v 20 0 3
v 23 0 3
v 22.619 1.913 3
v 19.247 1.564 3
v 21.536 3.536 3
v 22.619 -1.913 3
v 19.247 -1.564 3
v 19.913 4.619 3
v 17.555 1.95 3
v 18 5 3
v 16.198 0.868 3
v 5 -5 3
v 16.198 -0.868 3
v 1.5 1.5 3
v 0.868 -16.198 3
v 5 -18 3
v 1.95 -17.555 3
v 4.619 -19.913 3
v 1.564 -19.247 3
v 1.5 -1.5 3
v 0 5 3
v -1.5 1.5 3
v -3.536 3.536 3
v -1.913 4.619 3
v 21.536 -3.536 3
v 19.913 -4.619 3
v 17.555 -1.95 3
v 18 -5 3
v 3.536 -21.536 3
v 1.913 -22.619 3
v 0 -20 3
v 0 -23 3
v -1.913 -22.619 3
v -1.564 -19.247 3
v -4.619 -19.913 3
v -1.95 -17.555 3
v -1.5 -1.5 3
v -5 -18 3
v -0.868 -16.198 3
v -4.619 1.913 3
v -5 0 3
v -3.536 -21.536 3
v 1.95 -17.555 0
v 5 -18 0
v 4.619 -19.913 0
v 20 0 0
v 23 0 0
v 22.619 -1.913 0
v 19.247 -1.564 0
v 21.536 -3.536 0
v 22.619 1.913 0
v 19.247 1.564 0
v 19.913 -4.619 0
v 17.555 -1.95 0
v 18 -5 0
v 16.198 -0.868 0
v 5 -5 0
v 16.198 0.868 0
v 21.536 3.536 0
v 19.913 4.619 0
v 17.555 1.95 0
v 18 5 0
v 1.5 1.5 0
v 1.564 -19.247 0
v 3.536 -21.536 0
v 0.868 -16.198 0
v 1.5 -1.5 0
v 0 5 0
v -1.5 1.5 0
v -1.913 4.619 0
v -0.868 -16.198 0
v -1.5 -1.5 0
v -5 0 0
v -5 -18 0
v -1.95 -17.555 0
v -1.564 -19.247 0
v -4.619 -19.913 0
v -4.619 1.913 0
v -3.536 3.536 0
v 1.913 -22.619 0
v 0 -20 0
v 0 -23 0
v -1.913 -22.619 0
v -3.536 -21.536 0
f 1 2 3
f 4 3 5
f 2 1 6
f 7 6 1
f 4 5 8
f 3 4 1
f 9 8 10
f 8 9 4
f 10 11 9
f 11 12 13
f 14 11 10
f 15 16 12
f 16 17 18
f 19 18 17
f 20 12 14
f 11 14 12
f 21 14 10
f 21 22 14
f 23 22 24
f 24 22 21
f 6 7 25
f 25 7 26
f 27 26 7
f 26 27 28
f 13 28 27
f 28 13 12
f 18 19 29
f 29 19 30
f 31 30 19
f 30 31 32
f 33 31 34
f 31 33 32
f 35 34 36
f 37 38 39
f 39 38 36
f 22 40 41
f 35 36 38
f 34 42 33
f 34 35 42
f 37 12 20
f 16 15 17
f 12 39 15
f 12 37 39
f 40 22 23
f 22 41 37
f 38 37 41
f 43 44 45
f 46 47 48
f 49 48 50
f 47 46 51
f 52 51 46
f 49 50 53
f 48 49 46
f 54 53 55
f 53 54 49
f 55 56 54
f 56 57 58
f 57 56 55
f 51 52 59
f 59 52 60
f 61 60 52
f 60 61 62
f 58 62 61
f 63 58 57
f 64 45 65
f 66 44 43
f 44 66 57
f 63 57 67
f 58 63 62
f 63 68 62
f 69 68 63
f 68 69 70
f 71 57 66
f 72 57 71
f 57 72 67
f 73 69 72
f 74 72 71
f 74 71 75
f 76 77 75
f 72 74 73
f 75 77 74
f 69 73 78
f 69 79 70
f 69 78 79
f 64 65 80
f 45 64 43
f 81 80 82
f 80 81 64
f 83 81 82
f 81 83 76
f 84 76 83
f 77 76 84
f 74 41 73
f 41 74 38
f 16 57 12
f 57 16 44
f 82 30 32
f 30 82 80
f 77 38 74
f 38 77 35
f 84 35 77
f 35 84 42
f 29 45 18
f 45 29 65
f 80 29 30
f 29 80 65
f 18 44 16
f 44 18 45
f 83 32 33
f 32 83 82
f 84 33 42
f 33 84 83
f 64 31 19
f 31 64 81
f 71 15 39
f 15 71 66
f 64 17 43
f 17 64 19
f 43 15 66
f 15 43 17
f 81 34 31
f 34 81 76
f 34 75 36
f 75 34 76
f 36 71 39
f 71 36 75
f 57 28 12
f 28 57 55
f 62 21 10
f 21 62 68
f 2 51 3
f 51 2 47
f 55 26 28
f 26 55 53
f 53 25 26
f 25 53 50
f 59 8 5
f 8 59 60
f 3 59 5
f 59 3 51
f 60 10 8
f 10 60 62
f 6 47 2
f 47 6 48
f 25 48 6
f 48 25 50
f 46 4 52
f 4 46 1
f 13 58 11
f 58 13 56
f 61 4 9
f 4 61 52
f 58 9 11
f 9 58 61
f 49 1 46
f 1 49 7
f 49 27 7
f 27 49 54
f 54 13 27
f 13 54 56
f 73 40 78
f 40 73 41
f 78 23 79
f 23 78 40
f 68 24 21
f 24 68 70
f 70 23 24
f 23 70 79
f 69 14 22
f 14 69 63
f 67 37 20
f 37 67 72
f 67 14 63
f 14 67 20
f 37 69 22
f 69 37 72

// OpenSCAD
// file: ModuleKatzenklappe.scad
// //////////////////////////////////
// Module für Katzenklappenverschluss
// //////////////////////////////////

module armHorn (laenge, breite, dicke) {
    difference() {
    union() {
    translate ([0,-breite/2,0])
    cube([laenge,breite,dicke], false);
    translate ([laenge,0,0])
    cylinder(dicke,r=breite/2, false); 
    }
    translate ([laenge*1.0,0,0])
    loch(radius=2,tiefe= dicke + 1);
/*    translate ([laenge*0.6,0,dicke-1])
    letter("Achim");
    translate ([laenge*0.6,0,1])
    rotate([0,180,0])
    letter("Tim");
    translate ([laenge*0.2,0,0])
    loch(radius=2,tiefe= dicke + 1);
*/    }
};

module mittelRad (breite) {
    difference() {
        cylinder(breite,r=12.5, false);
        cylinder(breite,r=2.0, false);
        
/*        translate([0,0,breite])
        gear (
            toothNo = 100, 
            toothWidth = 1, 
            toothHeight  = 2, 
            thickness = breite,
            holeRadius = 5,
            holeSides = 6
        );
        translate ([-25,0,0])
        loch(radius=5,tiefe=breite + 1);
        translate ([25,0,0])
        loch(radius=5,tiefe=breite + 1);
        translate ([0,-25,0])
        loch(radius=5,tiefe=breite + 1);
        translate ([0,25,0])
        loch(radius=5,tiefe=breite + 1);
*/        } 
};

module loch (radius, tiefe) {
        cylinder(tiefe,r=radius, false);   
};

module zapfen (breite,tiefe) {
        cube([breite,breite,tiefe], true);   
};

module wand (breite) {
    difference() {
        cube([breite,120,5], false);  
        translate ([5,5,0])
        cube([breite/3-10,110,5], false);  
        translate ([breite/3+5,5,0])
        cube([breite/3-10,110,5], false);  
        translate ([2*breite/3+5,5,0])
        cube([breite/3-10,110,5], false);  
    } 
};

module lArm(laenge, breite, dicke) {
    difference() {
        union() {
            armHorn(laenge=laenge, breite=breite, dicke=dicke);
            rotate(90) armHorn(laenge=laenge, breite=breite, dicke=dicke);
            cylinder(dicke,r=breite/2, false); 
           }
            translate ([0,0,0])
            zapfen(breite= 3, tiefe = dicke * 2);
        }
};

module mittelAchse(laenge, radius_achse, zapfen_breite, zapfen_laenge, breite) {
    difference() {
        union() {
            translate ([0,0,zapfen_laenge /2])
            zapfen(breite= zapfen_breite, tiefe=zapfen_laenge);   
            translate ([0,0,zapfen_laenge])
            cylinder(laenge,r = radius_achse, false, $fn=6);
            translate ([0,0,laenge+(1.5*zapfen_laenge)])
            zapfen(breite= zapfen_breite, tiefe=zapfen_laenge);   
        }
        cylinder (laenge+6,r=0.9, false);
    }
};

module achse(laenge, radius_achse) {
    difference() {
        cylinder(laenge,r = radius_achse, false, $fn=6);
        cylinder (laenge+6,r=0.9, false);
    }
};


module tooth(width, thickness, height){
  scale([width/5,thickness/5,height/10]){
    difference(){
      translate([-2.5,0,0])
      cube([5,5,10]);
      translate([5+1.25-2.5,0-1,0])
      rotate([0,-14.0362434,0])
        cube([5,5+2,12]);
      translate([0-1.25-2.5,0+5+1,0])
      rotate([0,-14.0362434,180])
        cube([5,5+2,12]);
    }
  }
}
module gear(toothNo, toothWidth, toothHeight, thickness,holeRadius,holeSides){
  radius = (toothWidth*1.7*toothNo)/3.141592653589793238/2;
  rotate([-90,0,0])
  difference(){
    union(){
      for(i=[0:toothNo]){
        rotate([0,(360/toothNo)*i,0])
        translate([0,0,radius-0.5])
          tooth(toothWidth,thickness,toothHeight);
      }
      translate([0,thickness,0])
      rotate([90,0,0])
        cylinder(r=radius, h=thickness);
    }
  translate([0,thickness+1,0])
  rotate([90,0,0])
    cylinder(r=holeRadius,h=thickness+2,$fn=holeSides);
  }
}

font = "Liberation Sans";


letter_size = 5;
letter_height = 3;


module letter(l) {
  // Use linear_extrude() to make the letters 3D objects as they
  // are only 2D shapes when only using text()
  linear_extrude(height = letter_height) {
    text(l, size = letter_size, font = font, halign = "center", valign = "center", $fn = 16);
  }
}


module 9g_motor(){
	difference(){			
		union(){
			color("SteelBlue") cube([23,12.5,22], center=true);
			color("SteelBlue") translate([0,0,5]) cube([32,12,2], center=true);
			color("SteelBlue") translate([5.5,0,2.75]) cylinder(r=6, h=25.75, $fn=20, center=true);
			color("SteelBlue") translate([-.5,0,2.75]) cylinder(r=1, h=25.75, $fn=20, center=true);
			color("SteelBlue") translate([-1,0,2.75]) cube([5,5.6,24.5], center=true);		
			color("white") translate([5.5,0,3.65]) cylinder(r=2.35, h=29.25, $fn=20, center=true);				
		}
		translate([10,0,-11]) rotate([0,-30,0]) cube([8,13,4], center=true);
		for ( hole = [14,-14] ){
			translate([hole,0,5]) cylinder(r=2.2, h=4, $fn=20, center=true);
		}	
	}
}

module sg90() {
	color("blue") difference() {
		union() {
			translate([0,0,22.5/2]) cube([22.5,12.2,22.5], center=true);
			translate([0,0,16.75]) cube([32.2,12.2,2], center=true);

			translate([0,0,22.5-1]) {
				hull() {
					translate([-1,0,0]) cylinder(d=5.5, h=4+1);
					translate([1,0,0]) cylinder(d=5.5, h=4+1);
				}

				translate([5.5,0,0]) cylinder(d=11.6, h=4+1);
			}

		}	

		translate([-32.5/2+2,0,16.75-2]) {
			cylinder(d=2, h=2+2);
			translate([-2,0,2]) cube([4,1,2+2], center=true);
		}
		translate([32.5/2-2,0,16.75-2]) {
			cylinder(d=2, h=2+2);
			translate([2,0,2]) cube([4,1,2+2], center=true);
		}
	}
	color("white") translate([5.5,0,22.5-1+4]) {
		difference() {
			cylinder(d=4.8, h=3+1);
			translate([0,0,1]) cylinder(d=2, h=4);
		}
	}
}

module stuetze (hoehe) {
    difference() {
        translate ([0,0,0])
        cube([hoehe,20,3], false);
        translate ([hoehe*0.8,10,0])
        cylinder(21,r=1.5, center=true);
        translate ([hoehe*0.7,10,0])
        cylinder(21,r=1.5, center=true);
        translate ([hoehe*0.6,10,0])
        cylinder(21,r=1.5, center=true);
        translate ([hoehe*0.5,10,0])
        cylinder(21,r=1.5, center=true);
    }
}

module balken (laenge) {
    difference() {
        translate ([0,-10,0])
        cube([5,laenge,3], false);
    }
/*    translate ([2.5,25,2.5])
        rotate(-90,90,0)
        letter("Design by Achim & Tim 2018");    
*/
}

module boden(laenge, breite) {
    difference() {
        cube([5,laenge,breite], false);
        rotate([0,90,0])
        translate ([-breite/2,laenge*0.1,0])
        cylinder(6,r=1.5, center=false);
        rotate([0,90,0])
        translate ([-breite/2,laenge*0.5,0])
        cylinder(6,r=1.5, center=false);
        rotate([0,90,0])
        translate ([-breite/2,laenge*0.9,0])
        cylinder(6,r=1.5, center=false);
    }
}

module wand(hoehe, anzahl, abstand) {
    for (a =[0:abstand:anzahl*abstand])
        translate ([0,a,0])
        stuetze(hoehe);
    translate ([0,10,0])
    balken(anzahl*abstand);
    translate ([hoehe-5,10,0])
    balken(anzahl*abstand);
}

module halterung(hoehe) {
    // Bodenplatte
    cube([5,22,36],false);
    difference(){
        // Motorhalterung
        cube([hoehe,22,15.5],false);
        translate ([hoehe-5,10,11])
        cylinder(6,r=0.5, center=false);
        translate ([10,10,11])
        cylinder(6,r=0.5, center=false);
    }
}
// main file
include <ModuleKatzenklappe.scad>;
include <gears.scad>;

zahnradabstand = 25;
gehaeusehoehe = 45;

// Maße eines L-Arms
lArmBreite  = 10;
lArmLaenge  = 18;
lArmDicke   = 3;

// Maße der Mittelachse
mittelAchseLaenge       = 21;
mittelAchseRadius       = 4;
mittelAchseZapfenBreite = 2.6;
mittelAchseZapfenLaenge = 3;
mittelAchseRadBreite    = 5;

// Zahnrad 3 mit 6-kantlock

/*
difference() {
    translate ([0,70,0])
    rotate([0,0,1/56*360])
    gear (number_of_teeth=28,
			circular_pitch=109.8,
            hub_diameter=7,
            bore_diameter=1.8,
			rim_width=2,
			rim_thickness=4,
			gear_thickness=4,
			hub_thickness=4,
			circles=0);
    translate ([0,70,-10])
    scale (1.01) mittelAchse(laenge = mittelAchseLaenge, radius_achse =     mittelAchseRadius, zapfen_breite = mittelAchseZapfenBreite, zapfen_laenge = mittelAchseZapfenLaenge, breite = mittelAchseRadBreite);
    translate ([0,70,-10])
    cylinder(20,r=2,true);
}



// Verschluss
translate([0,0,0])
// Verschlussriegel unten
lArm(laenge=lArmLaenge,breite=lArmBreite,dicke=lArmDicke);

translate([0,0,0])
// Mittelachse
mittelAchse(laenge = mittelAchseLaenge, radius_achse = mittelAchseRadius, zapfen_breite = mittelAchseZapfenBreite, zapfen_laenge = mittelAchseZapfenLaenge, breite = mittelAchseRadBreite);
*/
   
// Verschlussriegel oben
//        translate ([0,0,mittelAchseLaenge+lArmDicke])
rotate(-90) lArm(laenge=lArmLaenge,breite=lArmBreite,dicke=lArmDicke);
/* 
translate ([70,70,3.3])
rotate([0,-90,0]) 
rotate([0,0,30]) 
achse(laenge = 10, radius_achse = mittelAchseRadius);

*/
